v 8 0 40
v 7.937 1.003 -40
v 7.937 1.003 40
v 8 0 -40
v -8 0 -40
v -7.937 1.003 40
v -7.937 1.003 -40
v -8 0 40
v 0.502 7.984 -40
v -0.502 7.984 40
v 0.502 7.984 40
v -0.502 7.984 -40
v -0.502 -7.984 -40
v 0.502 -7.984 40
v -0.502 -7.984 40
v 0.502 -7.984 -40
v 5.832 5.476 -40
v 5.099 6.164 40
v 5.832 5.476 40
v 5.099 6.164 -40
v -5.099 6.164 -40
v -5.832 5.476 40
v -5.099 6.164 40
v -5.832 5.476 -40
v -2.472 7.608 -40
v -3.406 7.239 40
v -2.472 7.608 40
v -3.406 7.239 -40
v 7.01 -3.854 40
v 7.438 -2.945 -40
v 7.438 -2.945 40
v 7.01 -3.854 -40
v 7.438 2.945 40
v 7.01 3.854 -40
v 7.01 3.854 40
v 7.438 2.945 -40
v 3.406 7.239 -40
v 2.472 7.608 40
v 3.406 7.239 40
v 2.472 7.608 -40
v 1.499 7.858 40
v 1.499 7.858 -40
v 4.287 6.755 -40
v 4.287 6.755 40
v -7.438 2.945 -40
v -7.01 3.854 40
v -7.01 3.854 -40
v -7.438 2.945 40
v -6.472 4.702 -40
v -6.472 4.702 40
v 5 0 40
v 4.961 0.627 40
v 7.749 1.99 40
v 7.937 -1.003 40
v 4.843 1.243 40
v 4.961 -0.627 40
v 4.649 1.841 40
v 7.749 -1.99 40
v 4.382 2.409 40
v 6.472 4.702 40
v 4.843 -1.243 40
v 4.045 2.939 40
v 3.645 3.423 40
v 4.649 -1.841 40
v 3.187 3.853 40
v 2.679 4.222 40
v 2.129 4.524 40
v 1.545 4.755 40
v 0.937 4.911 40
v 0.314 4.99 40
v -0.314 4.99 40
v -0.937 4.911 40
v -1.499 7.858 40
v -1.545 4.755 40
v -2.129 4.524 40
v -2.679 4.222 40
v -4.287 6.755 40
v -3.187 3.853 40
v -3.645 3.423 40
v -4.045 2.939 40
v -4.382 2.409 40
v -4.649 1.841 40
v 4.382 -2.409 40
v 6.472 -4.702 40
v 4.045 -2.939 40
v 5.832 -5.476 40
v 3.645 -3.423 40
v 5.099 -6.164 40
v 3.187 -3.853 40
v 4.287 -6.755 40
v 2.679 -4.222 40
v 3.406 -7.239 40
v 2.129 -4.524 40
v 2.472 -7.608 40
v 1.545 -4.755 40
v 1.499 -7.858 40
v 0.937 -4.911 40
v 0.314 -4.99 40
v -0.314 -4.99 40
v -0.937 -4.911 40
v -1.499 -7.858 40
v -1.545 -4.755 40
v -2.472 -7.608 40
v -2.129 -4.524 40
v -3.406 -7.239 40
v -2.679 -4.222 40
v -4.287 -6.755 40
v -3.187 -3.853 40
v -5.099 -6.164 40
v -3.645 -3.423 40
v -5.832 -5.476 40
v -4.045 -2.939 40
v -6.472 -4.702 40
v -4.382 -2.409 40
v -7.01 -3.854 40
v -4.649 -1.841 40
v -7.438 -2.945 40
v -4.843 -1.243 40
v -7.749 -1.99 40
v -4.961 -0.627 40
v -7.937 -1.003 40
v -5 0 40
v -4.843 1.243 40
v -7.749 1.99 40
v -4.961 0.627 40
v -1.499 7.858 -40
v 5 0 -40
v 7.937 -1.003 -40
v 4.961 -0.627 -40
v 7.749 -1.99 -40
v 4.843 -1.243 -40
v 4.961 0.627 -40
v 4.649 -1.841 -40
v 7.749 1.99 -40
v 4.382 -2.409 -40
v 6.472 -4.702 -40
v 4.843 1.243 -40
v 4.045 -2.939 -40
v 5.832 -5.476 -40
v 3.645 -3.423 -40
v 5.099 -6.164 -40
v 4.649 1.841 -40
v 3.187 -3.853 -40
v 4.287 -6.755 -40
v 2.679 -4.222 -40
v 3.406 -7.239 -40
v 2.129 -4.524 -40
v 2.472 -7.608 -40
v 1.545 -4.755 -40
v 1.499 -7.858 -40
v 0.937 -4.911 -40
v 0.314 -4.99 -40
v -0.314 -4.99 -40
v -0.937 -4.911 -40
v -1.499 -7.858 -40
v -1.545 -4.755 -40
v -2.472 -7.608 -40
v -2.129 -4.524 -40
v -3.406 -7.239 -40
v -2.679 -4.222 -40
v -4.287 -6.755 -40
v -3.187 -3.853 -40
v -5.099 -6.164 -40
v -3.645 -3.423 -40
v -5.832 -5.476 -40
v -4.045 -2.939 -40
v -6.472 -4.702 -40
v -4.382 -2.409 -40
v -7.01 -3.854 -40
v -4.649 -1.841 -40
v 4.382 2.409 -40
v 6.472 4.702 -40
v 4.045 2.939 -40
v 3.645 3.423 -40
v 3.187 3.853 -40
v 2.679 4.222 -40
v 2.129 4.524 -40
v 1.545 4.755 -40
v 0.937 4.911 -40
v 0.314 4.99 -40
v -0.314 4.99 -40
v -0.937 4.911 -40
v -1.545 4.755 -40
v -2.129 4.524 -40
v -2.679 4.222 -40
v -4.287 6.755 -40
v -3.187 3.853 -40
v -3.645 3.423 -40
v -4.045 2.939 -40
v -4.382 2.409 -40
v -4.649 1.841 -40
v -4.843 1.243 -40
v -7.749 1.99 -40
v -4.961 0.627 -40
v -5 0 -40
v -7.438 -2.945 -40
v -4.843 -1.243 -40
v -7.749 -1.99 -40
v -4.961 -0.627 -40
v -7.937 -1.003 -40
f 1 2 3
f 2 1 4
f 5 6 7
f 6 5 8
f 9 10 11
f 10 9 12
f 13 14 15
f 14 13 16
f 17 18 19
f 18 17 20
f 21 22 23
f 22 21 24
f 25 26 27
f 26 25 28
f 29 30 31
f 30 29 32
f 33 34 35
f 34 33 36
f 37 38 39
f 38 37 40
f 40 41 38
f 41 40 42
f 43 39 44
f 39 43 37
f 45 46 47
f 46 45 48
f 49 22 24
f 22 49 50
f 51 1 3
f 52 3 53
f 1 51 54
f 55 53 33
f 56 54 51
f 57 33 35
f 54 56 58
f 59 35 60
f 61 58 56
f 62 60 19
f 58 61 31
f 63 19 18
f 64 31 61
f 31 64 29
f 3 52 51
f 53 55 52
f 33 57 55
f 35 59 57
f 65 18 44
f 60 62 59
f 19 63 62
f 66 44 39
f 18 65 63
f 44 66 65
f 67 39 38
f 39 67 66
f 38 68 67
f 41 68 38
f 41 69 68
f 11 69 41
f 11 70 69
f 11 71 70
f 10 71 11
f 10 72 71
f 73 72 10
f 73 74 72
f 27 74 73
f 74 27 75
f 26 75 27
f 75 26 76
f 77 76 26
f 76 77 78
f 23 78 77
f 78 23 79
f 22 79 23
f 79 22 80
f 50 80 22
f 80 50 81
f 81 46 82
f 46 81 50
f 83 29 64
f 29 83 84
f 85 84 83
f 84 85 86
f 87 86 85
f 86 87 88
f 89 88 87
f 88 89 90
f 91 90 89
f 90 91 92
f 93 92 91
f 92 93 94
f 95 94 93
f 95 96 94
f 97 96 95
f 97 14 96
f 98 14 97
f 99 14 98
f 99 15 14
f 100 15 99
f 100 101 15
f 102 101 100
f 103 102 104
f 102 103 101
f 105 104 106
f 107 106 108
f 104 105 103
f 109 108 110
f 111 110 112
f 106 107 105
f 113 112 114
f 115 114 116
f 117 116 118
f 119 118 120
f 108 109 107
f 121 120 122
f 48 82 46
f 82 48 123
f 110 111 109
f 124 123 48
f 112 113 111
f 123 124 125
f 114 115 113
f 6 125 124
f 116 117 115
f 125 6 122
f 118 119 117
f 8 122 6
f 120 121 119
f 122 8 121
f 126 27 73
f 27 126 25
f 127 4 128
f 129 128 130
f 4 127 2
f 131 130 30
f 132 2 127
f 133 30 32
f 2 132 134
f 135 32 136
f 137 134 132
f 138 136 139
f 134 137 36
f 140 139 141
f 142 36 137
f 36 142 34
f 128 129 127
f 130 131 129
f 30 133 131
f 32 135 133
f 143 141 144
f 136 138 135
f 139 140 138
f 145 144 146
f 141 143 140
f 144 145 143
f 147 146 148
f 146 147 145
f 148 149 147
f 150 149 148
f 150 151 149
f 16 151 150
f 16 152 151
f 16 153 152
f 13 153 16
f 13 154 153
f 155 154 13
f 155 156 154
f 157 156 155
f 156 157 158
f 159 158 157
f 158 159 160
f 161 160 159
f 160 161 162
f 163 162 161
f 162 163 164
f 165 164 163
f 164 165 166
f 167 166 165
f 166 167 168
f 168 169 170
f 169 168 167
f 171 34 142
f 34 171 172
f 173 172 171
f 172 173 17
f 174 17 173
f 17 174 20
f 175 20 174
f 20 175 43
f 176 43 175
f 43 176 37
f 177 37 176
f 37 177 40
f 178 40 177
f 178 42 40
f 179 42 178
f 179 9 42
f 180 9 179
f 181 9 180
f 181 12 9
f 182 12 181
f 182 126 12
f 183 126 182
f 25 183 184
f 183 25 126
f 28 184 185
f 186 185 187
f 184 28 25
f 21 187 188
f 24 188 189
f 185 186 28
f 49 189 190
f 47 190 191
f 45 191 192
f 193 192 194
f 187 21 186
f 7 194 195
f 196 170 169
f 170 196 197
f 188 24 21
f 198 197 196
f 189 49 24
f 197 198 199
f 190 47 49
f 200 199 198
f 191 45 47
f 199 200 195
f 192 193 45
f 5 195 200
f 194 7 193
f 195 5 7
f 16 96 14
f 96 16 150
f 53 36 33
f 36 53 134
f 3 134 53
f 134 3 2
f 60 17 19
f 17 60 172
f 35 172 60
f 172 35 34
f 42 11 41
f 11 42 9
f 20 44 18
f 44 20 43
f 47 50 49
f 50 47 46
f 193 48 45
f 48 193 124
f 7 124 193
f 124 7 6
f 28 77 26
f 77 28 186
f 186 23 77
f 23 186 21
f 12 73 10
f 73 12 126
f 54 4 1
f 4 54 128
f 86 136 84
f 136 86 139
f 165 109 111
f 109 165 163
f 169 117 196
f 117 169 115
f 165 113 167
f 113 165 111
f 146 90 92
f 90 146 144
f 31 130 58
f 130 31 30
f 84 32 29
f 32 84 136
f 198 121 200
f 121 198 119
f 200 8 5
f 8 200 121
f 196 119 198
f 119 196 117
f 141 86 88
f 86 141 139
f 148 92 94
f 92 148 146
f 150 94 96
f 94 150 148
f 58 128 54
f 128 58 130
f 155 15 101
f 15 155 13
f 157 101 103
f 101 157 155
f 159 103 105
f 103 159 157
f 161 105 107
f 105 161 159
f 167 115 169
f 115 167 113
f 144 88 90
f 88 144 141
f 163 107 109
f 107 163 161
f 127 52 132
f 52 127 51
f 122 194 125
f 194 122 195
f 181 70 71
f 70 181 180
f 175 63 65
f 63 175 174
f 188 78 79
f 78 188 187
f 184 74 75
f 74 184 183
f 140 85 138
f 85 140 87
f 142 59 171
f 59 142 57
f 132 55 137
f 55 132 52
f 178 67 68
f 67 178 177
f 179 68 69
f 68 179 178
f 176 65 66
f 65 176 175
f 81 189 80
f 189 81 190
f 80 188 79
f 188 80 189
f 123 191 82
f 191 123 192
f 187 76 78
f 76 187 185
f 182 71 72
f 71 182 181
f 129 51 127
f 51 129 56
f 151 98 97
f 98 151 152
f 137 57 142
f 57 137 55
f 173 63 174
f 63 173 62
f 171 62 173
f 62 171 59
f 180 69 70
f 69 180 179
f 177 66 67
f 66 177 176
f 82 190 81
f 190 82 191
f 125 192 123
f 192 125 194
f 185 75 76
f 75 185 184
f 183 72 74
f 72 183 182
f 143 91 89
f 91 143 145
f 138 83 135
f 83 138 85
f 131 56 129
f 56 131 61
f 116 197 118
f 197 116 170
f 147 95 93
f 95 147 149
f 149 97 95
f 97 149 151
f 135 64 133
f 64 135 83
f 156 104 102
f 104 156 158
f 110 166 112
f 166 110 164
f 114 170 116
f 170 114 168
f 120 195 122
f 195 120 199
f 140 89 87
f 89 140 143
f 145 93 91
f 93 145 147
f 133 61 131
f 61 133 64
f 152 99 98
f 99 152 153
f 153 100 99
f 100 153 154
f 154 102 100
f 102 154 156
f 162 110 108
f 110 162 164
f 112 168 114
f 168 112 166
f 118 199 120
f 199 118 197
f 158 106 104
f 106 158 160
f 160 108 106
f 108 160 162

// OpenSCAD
$fn = 50;


difference() {
	union() {
		translate(v = [0, 0, -40.0000000000]) {
			cylinder(h = 80, r = 8.0000000000);
		}
	}
	union() {
		translate(v = [0, 0, -100.0000000000]) {
			cylinder(h = 200, r = 5.0000000000);
		}
	}
}
